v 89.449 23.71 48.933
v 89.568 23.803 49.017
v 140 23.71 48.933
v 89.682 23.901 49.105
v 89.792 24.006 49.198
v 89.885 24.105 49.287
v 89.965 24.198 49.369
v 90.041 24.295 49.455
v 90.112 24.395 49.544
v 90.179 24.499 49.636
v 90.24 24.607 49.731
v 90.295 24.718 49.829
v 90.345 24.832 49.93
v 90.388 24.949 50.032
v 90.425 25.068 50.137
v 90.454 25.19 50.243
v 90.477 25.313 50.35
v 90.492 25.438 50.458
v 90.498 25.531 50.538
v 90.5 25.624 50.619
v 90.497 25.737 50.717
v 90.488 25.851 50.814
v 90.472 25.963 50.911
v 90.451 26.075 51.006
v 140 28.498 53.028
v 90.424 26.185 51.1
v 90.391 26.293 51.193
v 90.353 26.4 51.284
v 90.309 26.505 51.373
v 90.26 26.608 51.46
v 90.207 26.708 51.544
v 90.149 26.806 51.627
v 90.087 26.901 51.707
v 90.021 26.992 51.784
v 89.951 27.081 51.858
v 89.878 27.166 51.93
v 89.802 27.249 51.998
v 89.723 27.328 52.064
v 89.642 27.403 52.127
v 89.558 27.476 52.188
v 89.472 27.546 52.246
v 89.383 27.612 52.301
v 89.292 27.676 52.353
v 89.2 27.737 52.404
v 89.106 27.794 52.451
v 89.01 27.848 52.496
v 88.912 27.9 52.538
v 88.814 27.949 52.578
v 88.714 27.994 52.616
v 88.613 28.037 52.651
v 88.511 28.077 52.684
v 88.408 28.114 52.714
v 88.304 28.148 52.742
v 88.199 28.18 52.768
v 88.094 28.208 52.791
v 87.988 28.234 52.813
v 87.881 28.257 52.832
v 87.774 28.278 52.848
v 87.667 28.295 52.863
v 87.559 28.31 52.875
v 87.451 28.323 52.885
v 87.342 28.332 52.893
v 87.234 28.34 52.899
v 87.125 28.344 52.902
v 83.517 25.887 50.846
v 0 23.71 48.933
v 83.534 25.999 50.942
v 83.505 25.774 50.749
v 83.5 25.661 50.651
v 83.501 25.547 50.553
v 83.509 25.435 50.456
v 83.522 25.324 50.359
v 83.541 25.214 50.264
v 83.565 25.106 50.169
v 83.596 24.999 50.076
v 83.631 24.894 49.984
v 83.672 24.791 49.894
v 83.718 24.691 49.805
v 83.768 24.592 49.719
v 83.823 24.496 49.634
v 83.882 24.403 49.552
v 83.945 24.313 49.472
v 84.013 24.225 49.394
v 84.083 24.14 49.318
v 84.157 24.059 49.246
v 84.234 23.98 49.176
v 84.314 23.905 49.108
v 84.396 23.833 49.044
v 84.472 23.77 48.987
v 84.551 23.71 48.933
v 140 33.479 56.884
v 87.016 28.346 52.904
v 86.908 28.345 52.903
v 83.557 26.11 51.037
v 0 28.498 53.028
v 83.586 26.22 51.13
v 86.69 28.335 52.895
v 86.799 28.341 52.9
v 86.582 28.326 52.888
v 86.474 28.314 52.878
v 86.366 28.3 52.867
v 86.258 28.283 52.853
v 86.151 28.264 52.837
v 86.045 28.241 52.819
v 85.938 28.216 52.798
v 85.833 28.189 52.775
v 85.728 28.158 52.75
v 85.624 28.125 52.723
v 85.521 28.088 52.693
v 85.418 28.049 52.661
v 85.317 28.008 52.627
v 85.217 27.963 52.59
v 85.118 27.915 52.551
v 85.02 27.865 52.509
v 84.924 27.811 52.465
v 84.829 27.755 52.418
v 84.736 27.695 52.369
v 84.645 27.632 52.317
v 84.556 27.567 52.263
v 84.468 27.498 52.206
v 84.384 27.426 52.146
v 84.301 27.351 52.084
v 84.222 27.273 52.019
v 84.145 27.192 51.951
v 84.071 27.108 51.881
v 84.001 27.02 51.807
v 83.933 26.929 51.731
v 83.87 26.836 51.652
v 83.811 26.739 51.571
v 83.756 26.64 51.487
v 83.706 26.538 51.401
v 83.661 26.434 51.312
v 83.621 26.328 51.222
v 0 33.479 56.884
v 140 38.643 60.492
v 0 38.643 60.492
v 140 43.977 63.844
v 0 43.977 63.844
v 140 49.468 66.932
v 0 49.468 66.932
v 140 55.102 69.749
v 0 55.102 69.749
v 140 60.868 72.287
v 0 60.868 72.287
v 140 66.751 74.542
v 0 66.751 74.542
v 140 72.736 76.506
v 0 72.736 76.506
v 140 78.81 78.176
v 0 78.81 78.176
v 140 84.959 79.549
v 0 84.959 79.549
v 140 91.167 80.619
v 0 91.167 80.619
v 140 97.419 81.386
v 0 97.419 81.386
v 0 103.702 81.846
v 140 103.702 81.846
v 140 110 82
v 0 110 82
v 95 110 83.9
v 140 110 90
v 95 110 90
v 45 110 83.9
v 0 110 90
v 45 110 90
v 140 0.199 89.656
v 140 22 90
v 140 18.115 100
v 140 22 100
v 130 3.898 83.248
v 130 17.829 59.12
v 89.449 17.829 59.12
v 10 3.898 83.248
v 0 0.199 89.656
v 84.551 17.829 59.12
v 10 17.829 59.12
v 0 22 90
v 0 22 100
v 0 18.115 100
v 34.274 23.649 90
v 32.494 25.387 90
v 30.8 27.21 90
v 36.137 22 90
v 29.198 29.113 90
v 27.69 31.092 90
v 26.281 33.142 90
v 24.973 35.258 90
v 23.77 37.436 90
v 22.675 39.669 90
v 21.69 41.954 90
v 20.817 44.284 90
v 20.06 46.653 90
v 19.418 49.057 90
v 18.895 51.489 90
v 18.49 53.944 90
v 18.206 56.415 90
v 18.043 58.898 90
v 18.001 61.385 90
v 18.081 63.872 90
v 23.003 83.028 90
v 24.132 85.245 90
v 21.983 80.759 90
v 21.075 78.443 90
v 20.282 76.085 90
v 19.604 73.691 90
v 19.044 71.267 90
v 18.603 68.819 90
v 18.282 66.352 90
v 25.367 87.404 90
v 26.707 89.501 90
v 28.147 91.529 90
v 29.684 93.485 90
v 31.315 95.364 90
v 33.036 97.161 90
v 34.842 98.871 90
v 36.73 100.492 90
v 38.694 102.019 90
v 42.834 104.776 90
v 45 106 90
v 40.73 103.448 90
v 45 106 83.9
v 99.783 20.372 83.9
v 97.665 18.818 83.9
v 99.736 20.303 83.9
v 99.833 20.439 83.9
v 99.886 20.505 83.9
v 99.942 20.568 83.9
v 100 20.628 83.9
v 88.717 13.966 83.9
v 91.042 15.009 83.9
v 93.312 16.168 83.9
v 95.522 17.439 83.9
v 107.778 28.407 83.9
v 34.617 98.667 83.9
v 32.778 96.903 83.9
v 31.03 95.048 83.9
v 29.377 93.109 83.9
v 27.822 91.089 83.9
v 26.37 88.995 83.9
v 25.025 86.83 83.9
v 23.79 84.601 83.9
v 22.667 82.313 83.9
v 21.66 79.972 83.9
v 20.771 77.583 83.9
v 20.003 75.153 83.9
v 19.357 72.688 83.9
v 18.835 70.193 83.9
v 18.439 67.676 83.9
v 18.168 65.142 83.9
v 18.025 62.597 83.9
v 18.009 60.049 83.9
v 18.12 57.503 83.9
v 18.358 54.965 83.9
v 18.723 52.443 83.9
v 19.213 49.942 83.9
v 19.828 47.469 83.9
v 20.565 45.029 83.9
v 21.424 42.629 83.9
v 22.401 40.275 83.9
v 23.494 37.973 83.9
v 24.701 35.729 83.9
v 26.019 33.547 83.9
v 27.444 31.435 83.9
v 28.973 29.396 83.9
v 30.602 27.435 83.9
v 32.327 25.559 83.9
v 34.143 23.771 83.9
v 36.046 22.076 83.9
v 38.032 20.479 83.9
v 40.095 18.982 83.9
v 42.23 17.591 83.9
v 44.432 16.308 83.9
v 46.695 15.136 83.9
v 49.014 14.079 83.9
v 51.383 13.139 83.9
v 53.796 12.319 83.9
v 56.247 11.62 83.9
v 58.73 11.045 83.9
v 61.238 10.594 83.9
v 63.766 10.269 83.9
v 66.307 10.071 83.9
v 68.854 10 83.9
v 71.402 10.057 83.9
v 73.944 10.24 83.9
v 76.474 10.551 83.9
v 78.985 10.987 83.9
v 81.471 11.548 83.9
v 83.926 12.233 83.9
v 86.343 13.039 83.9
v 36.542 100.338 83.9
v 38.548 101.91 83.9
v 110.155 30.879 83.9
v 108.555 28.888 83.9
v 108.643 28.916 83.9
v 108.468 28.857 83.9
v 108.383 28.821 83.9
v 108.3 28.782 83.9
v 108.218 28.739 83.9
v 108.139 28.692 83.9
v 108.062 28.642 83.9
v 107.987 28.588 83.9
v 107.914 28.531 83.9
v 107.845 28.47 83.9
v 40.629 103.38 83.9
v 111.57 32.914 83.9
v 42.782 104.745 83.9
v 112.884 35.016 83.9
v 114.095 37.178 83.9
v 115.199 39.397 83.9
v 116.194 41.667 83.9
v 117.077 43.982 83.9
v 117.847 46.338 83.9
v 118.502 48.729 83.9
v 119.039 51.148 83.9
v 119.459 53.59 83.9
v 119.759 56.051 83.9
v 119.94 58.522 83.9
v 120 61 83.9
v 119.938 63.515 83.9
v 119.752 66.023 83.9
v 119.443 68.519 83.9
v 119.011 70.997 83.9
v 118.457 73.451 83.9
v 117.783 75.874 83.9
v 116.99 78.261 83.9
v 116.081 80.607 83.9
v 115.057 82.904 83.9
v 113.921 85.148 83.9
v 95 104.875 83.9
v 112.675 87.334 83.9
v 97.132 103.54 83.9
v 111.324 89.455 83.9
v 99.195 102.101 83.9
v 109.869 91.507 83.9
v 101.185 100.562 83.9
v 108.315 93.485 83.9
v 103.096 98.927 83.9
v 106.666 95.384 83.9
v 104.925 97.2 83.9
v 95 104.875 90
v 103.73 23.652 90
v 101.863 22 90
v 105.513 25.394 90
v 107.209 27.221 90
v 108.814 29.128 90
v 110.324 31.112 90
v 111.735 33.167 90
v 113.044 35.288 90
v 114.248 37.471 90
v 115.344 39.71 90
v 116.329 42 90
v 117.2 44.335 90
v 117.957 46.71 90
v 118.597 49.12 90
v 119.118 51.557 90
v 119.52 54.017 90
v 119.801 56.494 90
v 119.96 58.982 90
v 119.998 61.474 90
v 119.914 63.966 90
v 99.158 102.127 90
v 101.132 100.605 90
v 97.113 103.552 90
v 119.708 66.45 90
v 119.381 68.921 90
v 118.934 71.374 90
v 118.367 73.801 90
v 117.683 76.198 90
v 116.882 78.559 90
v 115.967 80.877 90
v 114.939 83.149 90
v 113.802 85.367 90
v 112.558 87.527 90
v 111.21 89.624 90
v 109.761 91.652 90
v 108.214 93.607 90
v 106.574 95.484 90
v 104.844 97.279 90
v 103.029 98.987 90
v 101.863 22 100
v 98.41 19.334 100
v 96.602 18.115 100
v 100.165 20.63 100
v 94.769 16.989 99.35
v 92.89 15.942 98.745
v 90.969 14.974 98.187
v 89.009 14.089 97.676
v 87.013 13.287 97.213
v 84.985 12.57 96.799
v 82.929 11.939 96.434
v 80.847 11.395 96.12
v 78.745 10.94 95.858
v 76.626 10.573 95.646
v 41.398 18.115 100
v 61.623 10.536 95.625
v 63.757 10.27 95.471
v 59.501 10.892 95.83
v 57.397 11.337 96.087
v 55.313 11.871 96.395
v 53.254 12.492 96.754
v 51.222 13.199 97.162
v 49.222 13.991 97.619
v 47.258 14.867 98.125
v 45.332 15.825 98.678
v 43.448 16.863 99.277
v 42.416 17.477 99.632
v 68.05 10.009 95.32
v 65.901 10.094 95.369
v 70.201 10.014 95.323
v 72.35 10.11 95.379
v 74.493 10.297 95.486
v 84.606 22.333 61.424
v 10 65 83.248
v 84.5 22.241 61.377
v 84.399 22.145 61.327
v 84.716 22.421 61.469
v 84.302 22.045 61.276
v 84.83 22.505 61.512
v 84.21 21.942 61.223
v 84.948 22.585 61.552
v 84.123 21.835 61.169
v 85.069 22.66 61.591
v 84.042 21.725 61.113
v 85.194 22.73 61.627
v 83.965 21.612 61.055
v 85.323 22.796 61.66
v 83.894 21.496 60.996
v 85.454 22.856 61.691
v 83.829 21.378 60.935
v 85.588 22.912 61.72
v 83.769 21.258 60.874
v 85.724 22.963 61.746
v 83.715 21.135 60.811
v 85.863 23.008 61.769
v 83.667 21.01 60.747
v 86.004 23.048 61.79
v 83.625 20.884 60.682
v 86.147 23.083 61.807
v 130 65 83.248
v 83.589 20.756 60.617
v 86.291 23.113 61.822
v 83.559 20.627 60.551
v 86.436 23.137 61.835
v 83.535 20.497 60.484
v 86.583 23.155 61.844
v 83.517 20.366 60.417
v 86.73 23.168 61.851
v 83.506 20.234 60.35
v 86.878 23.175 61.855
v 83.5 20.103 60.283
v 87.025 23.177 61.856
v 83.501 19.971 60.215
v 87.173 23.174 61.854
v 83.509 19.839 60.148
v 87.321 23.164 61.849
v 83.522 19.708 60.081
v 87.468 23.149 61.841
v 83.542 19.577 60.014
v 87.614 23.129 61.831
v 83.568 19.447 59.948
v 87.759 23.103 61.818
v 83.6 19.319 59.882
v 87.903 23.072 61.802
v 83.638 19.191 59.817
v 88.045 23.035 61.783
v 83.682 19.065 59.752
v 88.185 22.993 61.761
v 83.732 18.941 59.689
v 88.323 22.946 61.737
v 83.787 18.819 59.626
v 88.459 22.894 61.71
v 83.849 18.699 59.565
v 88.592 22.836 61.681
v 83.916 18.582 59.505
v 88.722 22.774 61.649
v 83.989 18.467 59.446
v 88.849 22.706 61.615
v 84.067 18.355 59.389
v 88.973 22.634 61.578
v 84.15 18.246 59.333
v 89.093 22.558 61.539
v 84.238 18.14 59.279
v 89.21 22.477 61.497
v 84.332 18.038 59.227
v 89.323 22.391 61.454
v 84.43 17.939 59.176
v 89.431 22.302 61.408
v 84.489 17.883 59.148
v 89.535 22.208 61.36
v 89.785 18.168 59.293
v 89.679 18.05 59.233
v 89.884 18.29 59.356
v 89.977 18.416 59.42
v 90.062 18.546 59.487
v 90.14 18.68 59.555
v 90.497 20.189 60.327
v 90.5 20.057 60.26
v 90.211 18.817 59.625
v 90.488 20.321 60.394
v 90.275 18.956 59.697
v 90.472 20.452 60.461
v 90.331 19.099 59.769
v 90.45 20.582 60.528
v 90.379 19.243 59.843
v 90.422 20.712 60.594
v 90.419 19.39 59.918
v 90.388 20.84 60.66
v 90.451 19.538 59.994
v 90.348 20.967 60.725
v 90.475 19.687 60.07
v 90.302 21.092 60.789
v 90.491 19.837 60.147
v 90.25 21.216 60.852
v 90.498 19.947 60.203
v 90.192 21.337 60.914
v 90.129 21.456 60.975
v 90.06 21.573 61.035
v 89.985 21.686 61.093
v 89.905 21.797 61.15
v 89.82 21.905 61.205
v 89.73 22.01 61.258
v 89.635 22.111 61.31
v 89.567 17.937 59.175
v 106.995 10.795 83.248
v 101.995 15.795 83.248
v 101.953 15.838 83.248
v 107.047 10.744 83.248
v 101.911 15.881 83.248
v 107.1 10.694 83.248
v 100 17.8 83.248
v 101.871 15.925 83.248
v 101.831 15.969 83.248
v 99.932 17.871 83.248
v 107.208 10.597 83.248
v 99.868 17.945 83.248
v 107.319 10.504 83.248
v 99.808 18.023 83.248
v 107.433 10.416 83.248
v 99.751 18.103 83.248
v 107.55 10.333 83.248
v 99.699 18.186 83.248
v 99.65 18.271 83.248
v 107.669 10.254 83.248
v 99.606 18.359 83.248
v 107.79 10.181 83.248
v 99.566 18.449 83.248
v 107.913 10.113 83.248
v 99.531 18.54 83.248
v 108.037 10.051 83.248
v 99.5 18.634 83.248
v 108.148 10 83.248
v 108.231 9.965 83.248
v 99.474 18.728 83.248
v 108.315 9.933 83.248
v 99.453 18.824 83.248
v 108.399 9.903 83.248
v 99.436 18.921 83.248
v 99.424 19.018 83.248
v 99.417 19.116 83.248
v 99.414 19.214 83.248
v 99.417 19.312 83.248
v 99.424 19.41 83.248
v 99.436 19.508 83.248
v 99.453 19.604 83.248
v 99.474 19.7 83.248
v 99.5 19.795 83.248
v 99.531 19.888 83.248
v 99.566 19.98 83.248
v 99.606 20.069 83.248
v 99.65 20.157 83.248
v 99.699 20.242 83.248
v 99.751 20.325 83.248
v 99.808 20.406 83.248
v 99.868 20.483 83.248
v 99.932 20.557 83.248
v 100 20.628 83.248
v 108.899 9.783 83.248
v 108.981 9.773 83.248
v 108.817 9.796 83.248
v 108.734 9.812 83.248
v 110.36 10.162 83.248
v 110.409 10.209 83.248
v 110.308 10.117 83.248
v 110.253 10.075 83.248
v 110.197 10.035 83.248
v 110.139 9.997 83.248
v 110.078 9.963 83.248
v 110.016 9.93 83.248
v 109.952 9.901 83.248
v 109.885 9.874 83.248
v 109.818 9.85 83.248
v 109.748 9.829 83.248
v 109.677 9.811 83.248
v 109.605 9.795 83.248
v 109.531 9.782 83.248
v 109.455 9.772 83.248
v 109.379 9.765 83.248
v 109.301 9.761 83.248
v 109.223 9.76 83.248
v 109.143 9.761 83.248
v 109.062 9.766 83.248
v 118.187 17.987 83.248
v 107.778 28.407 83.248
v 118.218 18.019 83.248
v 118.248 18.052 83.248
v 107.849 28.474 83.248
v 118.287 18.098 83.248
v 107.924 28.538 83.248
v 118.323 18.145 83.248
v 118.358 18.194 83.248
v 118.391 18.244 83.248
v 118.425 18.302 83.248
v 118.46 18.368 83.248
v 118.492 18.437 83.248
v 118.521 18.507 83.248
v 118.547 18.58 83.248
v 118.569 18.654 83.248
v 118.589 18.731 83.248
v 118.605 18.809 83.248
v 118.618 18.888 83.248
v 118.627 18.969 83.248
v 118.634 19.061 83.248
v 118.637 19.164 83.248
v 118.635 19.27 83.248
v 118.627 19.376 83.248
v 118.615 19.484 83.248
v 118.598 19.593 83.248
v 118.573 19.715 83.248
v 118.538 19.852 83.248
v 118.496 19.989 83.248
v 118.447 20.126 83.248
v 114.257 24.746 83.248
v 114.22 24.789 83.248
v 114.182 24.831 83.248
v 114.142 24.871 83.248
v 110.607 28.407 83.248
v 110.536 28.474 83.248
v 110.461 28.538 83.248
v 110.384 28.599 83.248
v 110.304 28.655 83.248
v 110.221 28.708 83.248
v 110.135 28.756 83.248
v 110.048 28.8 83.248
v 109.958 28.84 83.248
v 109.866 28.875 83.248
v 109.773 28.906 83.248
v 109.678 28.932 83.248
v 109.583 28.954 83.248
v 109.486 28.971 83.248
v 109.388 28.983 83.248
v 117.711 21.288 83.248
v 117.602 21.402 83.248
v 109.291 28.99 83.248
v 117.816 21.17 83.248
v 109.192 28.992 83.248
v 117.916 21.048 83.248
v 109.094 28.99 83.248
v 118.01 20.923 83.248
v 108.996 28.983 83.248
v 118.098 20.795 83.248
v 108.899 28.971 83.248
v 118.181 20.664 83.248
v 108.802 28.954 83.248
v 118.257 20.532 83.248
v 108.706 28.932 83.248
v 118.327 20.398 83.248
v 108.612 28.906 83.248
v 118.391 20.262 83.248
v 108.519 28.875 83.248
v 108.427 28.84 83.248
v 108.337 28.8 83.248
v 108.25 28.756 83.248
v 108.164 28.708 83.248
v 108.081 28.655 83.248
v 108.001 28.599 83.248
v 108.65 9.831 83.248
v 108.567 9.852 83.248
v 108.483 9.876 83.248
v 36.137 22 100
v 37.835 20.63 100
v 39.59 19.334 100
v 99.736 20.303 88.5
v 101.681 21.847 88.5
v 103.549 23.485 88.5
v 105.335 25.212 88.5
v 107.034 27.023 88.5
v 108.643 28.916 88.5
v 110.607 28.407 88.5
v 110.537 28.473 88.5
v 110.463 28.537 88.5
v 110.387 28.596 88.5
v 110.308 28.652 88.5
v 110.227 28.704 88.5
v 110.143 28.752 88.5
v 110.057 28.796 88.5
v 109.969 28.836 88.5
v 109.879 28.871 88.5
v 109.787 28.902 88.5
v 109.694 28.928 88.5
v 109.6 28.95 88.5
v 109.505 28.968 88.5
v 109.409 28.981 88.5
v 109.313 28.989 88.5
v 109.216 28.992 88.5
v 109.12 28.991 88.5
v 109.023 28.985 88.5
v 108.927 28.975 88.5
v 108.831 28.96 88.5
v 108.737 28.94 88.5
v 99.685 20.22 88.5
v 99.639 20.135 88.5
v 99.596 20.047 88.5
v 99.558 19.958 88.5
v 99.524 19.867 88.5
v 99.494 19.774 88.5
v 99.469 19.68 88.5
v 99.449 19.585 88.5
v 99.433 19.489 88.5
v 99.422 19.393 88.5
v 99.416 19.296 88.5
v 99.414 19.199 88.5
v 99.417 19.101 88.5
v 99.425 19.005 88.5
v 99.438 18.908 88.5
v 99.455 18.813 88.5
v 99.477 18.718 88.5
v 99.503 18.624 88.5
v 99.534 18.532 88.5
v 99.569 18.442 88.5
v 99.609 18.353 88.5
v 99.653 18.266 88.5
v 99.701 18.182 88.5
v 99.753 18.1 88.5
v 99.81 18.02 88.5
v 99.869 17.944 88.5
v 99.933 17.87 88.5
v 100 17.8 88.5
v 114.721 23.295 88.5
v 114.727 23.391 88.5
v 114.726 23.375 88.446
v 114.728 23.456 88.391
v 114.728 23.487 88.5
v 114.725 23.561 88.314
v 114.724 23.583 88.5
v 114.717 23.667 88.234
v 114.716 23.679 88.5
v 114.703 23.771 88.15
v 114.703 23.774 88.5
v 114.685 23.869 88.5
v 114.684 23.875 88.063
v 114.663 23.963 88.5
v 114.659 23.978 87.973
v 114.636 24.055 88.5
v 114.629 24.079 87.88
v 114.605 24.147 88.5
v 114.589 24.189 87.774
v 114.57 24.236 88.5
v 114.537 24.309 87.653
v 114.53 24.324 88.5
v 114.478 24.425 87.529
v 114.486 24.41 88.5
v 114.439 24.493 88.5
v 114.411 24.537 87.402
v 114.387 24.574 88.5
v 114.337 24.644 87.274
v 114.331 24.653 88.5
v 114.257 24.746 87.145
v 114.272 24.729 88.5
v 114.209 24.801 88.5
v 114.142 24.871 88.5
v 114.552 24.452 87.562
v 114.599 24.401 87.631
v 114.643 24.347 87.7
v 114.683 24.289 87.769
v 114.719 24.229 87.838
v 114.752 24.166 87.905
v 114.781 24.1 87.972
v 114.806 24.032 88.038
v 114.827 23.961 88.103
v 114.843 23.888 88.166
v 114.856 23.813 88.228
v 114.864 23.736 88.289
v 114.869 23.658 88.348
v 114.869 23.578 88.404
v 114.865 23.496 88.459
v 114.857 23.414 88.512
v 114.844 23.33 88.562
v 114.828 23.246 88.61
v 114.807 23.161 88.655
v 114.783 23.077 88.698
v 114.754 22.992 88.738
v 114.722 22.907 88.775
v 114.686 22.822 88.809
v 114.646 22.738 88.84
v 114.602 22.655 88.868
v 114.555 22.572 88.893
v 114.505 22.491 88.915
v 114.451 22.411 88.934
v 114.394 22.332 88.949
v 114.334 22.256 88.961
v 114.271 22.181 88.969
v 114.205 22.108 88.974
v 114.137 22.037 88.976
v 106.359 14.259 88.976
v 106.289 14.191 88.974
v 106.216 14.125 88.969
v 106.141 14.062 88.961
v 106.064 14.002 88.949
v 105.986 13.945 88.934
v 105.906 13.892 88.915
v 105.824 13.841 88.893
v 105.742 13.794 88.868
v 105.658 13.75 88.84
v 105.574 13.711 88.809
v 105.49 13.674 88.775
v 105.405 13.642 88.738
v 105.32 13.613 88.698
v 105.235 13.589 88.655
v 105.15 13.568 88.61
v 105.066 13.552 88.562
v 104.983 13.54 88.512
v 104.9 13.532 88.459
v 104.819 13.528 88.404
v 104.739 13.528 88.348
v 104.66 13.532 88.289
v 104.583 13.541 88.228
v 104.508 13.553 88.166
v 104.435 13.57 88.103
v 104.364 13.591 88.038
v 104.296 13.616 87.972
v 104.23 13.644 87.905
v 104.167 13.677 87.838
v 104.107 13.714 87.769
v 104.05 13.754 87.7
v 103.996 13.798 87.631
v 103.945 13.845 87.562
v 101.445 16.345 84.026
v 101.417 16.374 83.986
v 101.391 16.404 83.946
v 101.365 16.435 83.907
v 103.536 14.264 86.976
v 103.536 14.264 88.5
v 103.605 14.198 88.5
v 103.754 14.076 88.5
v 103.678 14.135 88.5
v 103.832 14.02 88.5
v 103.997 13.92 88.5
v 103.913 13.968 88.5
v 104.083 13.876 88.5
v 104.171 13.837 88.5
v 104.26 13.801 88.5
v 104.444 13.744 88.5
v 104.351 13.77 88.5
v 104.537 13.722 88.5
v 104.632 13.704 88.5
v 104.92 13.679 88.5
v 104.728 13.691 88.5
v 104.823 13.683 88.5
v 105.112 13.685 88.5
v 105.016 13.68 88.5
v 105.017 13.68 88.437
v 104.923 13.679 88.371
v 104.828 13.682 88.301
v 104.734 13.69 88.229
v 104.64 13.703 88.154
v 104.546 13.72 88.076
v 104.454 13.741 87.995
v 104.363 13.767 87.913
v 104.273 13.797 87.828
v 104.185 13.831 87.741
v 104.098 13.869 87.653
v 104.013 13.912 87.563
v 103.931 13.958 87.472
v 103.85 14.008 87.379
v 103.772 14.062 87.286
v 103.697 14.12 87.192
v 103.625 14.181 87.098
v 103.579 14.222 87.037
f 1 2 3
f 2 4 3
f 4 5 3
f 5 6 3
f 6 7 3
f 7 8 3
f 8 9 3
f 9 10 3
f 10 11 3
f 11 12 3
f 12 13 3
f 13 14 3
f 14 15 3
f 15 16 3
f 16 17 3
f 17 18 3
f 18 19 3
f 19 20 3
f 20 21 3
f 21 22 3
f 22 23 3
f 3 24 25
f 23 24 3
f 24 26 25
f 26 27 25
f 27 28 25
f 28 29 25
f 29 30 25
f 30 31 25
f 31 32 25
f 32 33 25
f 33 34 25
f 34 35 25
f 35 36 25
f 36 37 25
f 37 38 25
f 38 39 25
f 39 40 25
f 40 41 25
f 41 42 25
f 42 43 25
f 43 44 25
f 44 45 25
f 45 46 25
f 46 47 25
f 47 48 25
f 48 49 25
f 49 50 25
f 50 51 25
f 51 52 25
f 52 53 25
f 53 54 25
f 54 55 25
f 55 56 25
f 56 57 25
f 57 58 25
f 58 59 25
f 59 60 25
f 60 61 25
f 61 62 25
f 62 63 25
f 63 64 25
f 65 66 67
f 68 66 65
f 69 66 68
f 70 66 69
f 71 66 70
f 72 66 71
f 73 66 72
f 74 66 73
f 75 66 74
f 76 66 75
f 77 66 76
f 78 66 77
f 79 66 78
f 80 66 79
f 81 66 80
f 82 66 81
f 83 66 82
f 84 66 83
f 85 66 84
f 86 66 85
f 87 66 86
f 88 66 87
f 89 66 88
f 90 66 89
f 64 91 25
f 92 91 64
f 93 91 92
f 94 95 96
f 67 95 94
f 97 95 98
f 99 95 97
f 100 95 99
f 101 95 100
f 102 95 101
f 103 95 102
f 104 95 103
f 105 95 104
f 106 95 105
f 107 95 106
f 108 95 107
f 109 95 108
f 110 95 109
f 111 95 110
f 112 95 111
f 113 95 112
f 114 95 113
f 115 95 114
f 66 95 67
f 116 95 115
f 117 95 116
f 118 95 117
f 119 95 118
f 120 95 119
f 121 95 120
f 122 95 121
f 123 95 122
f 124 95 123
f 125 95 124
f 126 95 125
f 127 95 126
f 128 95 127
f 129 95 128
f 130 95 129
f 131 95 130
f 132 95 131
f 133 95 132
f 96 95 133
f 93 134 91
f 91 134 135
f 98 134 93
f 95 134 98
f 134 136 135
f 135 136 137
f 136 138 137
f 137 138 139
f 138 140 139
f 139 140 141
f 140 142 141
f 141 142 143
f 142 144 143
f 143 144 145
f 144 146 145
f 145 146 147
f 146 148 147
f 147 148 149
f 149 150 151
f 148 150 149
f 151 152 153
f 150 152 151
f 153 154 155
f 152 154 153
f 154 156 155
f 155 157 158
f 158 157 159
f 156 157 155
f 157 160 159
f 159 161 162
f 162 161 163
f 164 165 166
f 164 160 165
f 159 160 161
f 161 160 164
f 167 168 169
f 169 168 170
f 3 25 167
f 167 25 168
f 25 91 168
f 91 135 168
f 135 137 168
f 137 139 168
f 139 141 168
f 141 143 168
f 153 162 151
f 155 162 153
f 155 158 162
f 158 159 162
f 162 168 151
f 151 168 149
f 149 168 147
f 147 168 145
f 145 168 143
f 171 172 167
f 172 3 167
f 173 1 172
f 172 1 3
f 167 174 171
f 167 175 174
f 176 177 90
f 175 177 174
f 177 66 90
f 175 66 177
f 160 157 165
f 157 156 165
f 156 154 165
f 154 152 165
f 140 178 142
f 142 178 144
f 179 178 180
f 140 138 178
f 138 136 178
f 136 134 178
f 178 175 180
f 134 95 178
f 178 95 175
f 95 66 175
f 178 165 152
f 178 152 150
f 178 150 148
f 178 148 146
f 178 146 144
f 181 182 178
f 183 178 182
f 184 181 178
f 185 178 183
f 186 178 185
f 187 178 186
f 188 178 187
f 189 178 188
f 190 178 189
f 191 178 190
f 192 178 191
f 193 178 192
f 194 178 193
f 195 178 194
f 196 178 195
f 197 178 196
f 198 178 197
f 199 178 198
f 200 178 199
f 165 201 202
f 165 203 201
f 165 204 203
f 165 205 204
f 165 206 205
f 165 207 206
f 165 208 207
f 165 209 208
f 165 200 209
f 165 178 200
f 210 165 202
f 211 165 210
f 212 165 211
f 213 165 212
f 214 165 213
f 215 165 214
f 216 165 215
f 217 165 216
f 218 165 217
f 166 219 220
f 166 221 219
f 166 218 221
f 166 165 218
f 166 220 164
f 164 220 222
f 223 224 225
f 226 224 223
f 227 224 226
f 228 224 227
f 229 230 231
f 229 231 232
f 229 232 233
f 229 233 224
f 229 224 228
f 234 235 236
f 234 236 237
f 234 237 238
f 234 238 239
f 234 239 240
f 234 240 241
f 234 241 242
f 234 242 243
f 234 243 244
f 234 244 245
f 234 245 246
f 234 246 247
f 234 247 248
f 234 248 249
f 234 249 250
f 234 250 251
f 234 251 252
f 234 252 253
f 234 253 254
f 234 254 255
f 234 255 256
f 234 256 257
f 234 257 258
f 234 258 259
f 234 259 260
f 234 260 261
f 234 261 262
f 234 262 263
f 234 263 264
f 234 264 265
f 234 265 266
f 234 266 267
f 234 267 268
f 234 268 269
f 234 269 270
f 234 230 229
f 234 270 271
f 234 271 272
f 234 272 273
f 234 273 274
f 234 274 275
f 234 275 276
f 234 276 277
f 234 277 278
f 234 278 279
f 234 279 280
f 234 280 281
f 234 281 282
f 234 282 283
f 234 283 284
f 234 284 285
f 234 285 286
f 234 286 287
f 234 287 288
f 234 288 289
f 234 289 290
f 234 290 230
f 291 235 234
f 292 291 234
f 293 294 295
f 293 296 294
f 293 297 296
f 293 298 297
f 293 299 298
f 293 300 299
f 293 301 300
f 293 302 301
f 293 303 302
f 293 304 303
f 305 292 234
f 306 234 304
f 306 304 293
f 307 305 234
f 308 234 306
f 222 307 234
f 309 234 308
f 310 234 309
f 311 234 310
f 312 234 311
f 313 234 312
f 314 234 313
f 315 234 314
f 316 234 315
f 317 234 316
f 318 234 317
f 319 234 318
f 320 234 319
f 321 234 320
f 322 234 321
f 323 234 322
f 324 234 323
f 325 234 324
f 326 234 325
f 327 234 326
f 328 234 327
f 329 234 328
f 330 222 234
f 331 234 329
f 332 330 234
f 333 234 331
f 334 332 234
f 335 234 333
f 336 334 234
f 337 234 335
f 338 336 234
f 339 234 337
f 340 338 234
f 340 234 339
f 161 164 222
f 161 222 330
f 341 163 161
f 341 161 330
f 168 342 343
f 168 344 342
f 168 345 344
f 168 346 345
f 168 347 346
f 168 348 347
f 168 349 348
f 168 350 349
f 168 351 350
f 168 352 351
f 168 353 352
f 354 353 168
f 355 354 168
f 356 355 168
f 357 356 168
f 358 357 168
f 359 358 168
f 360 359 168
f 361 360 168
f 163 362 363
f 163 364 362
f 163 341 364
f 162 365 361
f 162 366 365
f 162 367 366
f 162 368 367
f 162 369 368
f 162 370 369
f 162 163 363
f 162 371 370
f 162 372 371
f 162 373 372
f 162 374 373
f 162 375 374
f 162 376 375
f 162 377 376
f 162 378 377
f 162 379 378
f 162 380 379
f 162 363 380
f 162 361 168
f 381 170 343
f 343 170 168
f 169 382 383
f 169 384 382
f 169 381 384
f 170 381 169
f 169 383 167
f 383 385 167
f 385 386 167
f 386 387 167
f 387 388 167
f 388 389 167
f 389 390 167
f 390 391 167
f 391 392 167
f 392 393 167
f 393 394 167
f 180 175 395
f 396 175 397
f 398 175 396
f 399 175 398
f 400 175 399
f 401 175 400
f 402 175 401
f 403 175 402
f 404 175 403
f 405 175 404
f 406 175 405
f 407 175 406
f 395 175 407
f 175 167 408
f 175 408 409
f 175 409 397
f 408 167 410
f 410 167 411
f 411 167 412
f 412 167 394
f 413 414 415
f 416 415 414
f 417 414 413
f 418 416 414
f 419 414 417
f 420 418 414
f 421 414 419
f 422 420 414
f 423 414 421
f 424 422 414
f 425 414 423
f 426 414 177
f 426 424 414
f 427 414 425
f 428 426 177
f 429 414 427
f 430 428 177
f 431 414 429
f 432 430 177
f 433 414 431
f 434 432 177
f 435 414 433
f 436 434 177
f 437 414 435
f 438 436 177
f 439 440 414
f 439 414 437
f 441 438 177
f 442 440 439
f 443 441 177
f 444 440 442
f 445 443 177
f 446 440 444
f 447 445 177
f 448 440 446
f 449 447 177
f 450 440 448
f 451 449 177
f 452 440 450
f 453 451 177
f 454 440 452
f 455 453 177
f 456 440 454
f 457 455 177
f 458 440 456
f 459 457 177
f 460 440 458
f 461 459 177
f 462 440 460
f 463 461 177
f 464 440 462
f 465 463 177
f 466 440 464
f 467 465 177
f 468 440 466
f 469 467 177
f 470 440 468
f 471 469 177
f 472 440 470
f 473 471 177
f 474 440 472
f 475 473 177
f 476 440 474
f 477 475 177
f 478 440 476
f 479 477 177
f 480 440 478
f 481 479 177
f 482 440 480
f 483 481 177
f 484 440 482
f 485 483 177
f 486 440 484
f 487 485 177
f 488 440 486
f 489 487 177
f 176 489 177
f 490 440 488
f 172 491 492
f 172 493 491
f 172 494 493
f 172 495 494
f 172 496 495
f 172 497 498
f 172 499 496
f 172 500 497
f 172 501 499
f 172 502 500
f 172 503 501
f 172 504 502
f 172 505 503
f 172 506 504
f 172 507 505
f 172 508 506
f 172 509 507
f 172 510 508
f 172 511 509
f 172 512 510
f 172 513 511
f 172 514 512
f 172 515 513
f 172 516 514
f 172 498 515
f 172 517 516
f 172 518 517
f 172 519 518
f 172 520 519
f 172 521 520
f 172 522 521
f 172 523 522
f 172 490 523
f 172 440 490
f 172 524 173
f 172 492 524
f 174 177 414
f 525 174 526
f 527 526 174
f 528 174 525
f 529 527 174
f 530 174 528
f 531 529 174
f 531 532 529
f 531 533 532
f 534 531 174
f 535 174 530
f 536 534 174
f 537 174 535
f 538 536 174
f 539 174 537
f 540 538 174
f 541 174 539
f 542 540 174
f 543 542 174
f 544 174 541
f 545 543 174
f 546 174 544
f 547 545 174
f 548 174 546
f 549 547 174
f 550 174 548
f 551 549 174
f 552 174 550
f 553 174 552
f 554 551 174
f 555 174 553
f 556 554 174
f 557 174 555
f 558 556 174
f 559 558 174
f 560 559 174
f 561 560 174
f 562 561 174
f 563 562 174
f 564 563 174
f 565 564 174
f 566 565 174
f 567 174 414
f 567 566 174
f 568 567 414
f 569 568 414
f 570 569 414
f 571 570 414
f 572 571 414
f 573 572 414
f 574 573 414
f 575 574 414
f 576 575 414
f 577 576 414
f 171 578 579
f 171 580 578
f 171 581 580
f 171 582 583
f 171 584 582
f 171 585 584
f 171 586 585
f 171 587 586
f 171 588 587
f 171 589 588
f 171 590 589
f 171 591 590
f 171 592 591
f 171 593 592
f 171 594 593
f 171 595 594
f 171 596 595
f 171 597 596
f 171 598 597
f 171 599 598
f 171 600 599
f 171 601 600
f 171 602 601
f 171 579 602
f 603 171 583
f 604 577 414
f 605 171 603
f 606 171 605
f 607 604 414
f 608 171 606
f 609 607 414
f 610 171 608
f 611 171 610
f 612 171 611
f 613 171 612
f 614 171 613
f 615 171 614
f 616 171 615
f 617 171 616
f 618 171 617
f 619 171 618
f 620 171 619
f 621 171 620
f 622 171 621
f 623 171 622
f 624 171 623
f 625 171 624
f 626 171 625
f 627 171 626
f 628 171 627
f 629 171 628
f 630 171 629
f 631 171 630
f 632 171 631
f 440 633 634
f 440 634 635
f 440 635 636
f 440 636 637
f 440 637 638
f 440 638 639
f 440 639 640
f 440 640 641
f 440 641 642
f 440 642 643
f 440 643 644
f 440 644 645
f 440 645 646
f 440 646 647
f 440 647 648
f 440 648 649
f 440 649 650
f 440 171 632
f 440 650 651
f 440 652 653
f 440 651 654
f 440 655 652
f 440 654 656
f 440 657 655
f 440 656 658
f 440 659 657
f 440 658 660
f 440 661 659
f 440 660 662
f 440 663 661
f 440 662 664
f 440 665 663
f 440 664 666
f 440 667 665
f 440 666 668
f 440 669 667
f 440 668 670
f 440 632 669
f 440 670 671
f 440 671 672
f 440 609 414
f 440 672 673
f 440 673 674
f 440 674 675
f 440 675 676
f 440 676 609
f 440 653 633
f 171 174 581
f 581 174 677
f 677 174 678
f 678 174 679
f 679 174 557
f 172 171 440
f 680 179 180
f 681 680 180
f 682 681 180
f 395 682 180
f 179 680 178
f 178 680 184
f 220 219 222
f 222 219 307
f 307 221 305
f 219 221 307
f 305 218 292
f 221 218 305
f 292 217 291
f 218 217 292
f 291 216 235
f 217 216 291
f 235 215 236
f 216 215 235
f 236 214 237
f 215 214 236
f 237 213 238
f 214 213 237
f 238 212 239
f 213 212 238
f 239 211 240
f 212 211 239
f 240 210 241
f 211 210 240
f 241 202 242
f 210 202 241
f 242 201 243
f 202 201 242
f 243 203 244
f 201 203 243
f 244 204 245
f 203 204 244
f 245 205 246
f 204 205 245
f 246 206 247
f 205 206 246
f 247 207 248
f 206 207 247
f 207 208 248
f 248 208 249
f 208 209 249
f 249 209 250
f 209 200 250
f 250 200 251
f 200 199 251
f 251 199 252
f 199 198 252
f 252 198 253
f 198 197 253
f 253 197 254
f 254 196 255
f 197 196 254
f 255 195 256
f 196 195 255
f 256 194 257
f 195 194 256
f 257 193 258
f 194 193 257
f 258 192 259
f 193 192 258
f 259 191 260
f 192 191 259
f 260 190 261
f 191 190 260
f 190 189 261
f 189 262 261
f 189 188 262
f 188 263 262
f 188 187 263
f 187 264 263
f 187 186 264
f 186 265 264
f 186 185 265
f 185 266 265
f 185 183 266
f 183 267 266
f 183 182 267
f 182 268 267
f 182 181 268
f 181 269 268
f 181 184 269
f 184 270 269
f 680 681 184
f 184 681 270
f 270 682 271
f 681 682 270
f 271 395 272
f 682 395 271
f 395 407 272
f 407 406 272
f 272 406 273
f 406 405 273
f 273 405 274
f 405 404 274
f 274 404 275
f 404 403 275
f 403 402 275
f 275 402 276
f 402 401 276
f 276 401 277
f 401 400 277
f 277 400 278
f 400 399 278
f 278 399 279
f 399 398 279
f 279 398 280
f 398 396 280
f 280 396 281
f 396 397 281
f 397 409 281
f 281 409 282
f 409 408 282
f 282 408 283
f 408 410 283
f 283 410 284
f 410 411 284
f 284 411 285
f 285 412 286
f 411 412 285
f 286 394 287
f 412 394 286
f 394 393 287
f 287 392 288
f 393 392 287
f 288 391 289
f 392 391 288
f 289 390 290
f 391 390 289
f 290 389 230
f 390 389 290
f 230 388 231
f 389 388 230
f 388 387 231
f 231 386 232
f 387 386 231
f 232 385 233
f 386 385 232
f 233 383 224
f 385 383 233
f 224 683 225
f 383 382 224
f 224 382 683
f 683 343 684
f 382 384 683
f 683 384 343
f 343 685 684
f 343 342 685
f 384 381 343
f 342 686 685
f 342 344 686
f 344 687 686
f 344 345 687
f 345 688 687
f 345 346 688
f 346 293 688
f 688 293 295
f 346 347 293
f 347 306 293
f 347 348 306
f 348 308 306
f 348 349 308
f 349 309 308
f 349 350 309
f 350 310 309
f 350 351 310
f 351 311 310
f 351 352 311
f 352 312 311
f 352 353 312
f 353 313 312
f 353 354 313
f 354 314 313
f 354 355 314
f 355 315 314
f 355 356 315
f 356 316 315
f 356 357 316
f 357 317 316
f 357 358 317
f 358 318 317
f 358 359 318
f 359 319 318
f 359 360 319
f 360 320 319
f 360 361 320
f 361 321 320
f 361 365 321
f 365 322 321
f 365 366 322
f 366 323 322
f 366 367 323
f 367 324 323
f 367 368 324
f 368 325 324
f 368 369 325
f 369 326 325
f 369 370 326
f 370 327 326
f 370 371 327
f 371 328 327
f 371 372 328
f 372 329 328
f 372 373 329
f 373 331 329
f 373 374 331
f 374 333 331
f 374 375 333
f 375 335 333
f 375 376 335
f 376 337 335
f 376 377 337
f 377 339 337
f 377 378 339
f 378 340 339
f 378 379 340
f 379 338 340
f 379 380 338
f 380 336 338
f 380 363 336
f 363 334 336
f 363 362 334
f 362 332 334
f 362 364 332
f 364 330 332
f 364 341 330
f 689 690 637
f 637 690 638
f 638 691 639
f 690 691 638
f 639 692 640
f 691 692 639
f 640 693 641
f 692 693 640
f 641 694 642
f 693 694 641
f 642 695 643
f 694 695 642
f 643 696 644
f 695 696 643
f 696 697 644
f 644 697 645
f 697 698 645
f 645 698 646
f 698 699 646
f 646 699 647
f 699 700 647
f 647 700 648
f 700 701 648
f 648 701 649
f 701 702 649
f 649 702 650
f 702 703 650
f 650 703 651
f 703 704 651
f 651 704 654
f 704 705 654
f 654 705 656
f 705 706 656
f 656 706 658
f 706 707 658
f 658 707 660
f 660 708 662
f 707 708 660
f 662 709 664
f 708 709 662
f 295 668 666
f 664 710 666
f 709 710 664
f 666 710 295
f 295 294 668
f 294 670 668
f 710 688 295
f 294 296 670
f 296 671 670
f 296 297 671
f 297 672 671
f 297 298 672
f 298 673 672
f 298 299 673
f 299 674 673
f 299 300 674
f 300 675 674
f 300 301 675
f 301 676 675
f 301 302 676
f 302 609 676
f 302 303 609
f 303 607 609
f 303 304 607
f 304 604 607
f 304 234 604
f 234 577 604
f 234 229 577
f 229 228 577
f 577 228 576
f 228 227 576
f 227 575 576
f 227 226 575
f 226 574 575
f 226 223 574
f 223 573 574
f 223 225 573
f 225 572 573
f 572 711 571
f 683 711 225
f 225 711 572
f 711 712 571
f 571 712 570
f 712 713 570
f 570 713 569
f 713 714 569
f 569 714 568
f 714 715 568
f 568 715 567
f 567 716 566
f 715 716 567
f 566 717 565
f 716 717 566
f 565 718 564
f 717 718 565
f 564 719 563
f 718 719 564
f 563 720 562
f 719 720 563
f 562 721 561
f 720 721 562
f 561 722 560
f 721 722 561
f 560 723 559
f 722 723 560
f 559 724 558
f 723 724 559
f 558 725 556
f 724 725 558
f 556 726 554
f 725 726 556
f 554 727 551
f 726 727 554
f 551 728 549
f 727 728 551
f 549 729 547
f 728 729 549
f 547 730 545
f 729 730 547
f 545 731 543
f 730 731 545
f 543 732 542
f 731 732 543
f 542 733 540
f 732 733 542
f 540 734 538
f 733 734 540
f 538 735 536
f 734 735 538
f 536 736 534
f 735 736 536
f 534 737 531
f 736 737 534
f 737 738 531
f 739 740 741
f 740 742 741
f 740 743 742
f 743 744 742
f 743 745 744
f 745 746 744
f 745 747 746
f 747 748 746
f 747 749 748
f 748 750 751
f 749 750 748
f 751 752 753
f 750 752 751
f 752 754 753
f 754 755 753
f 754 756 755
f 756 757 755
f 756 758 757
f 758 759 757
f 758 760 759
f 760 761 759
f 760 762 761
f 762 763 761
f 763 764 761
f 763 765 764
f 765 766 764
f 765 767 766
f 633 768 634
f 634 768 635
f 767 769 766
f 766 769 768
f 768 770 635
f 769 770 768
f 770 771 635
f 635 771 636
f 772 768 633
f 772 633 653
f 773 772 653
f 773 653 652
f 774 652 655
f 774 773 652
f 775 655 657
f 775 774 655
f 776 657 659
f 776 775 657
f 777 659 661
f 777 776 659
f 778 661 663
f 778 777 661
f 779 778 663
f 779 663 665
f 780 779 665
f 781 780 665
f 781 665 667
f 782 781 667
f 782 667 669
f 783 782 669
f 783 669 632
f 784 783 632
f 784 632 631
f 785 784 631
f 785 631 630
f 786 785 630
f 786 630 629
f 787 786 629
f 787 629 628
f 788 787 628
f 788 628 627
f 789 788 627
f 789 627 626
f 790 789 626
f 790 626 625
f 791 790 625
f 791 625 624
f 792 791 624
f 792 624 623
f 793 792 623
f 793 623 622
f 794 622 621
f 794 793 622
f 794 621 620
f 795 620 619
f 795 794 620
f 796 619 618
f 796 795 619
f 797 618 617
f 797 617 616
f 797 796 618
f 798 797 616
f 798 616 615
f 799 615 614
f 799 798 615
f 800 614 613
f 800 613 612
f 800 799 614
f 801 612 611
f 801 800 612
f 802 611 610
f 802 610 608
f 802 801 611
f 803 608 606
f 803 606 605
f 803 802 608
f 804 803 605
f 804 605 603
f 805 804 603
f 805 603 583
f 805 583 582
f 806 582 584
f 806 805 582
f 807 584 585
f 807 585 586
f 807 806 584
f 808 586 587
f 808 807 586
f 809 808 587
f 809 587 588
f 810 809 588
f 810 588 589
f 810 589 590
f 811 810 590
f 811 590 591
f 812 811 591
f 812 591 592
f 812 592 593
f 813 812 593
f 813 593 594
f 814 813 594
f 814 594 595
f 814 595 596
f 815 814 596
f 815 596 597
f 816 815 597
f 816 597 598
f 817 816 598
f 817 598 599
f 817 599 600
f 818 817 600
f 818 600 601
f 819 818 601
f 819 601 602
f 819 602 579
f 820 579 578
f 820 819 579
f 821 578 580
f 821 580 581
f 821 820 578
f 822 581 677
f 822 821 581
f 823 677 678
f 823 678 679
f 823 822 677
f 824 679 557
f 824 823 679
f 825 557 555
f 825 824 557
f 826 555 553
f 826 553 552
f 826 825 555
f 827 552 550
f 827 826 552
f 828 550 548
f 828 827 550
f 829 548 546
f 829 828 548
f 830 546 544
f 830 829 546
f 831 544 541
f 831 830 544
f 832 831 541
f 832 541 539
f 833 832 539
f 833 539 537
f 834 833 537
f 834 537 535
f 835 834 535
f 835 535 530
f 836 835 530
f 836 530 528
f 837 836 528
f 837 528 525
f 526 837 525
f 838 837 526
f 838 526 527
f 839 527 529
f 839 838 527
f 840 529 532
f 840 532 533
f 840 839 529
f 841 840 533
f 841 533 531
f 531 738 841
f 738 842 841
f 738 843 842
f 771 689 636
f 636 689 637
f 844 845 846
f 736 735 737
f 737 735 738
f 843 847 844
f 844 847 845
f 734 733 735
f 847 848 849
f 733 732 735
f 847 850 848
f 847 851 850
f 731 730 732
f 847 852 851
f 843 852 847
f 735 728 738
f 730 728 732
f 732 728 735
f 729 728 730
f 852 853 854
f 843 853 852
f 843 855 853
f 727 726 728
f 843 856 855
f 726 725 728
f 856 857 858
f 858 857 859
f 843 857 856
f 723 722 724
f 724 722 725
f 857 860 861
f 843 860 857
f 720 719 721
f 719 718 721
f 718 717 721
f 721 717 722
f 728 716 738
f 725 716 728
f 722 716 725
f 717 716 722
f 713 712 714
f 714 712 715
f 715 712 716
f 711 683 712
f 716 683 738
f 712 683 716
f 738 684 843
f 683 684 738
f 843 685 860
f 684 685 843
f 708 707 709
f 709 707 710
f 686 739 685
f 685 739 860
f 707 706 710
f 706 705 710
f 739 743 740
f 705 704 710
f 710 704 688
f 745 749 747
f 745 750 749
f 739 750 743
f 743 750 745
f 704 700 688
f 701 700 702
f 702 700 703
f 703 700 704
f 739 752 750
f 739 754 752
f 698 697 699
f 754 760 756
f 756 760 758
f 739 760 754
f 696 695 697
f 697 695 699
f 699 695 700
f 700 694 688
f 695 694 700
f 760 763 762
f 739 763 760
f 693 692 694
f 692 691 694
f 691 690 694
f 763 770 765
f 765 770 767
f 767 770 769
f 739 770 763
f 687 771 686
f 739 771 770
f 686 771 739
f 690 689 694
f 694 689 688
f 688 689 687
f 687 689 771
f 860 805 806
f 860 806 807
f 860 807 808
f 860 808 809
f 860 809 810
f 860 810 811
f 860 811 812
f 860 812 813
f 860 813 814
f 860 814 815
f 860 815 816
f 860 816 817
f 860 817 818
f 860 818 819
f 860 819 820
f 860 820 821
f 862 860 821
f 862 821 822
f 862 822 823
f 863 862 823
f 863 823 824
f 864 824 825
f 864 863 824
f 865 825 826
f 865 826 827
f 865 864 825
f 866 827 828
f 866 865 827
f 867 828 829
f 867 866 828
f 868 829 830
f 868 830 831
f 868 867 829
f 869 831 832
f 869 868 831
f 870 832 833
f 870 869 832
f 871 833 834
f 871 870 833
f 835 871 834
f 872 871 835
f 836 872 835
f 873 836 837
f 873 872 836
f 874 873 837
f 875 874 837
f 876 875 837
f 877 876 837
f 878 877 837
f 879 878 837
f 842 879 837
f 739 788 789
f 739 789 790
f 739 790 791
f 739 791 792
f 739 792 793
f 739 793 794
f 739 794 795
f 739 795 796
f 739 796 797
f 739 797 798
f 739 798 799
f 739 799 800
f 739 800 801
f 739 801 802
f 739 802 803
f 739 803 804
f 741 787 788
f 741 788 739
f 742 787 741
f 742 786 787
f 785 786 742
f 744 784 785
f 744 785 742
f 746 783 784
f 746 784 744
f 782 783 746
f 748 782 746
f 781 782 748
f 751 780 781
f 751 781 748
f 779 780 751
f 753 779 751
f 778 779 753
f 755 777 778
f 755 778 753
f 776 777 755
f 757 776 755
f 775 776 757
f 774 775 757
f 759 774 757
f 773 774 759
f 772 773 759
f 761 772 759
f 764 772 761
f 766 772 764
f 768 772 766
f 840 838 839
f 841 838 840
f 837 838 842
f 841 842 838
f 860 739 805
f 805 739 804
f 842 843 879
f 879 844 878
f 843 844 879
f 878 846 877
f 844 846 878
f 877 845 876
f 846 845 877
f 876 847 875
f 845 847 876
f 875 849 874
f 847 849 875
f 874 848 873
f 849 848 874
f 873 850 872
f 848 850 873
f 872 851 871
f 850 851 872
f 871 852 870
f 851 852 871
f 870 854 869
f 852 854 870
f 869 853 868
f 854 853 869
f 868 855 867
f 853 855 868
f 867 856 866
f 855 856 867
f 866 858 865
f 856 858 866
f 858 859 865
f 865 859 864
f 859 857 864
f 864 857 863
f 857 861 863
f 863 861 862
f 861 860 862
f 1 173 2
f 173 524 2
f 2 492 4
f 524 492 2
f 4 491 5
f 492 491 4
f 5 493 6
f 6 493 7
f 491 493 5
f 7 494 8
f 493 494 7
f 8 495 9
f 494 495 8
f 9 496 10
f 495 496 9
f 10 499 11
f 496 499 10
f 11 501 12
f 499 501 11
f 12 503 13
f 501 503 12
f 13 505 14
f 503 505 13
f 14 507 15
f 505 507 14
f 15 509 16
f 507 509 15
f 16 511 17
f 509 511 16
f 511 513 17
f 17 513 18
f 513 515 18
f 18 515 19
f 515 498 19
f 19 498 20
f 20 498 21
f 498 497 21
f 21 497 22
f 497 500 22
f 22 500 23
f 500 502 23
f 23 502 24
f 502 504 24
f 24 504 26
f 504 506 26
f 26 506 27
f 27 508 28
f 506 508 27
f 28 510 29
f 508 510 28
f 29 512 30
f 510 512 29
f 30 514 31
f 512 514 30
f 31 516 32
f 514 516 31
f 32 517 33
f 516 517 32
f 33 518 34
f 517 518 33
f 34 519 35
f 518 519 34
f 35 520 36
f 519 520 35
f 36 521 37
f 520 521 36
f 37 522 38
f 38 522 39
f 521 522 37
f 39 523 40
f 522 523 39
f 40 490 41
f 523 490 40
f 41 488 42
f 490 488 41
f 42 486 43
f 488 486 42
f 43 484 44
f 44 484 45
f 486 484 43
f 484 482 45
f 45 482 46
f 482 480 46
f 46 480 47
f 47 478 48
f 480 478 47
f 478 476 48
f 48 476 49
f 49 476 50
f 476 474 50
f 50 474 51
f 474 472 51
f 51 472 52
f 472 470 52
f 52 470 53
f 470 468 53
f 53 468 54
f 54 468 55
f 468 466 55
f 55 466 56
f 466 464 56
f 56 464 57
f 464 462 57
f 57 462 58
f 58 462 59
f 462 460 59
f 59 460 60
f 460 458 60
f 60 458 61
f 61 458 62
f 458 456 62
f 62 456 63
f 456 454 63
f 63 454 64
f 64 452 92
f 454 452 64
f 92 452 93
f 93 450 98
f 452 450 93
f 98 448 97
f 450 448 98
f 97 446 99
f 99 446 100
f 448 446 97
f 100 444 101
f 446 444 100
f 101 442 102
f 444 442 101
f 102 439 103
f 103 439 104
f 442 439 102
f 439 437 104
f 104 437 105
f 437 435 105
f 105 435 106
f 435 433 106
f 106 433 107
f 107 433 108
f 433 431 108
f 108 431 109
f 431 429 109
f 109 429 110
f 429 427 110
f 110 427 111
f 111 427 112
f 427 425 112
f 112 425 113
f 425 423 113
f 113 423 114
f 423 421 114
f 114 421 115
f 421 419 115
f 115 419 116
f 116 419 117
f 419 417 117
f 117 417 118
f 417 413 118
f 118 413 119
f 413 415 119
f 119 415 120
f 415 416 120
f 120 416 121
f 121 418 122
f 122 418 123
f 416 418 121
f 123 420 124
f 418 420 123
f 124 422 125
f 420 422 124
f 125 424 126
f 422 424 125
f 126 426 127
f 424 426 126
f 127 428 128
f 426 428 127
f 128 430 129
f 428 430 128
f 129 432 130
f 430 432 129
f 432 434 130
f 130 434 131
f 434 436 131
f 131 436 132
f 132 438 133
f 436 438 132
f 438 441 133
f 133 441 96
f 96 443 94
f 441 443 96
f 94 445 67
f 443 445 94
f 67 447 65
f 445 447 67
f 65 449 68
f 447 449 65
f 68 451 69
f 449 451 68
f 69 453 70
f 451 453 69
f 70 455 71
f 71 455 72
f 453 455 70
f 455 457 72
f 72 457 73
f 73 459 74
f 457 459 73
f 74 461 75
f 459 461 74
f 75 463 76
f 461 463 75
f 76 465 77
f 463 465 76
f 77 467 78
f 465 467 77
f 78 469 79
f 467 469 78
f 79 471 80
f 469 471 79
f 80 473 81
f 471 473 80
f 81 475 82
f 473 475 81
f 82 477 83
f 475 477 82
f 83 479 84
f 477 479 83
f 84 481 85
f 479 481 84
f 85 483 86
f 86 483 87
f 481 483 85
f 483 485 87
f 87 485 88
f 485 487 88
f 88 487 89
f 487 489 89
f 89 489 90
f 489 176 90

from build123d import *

# Parameters (mm, degrees)
SKETCH_W        = 140
SKETCH_H        = 110
PAD_DEPTH       = 100
SKETCH001_R     = 51
POCKET_DEPTH    = 16.1
SKETCH002_W     = 50
SKETCH002_H     = 7.148574
POCKET001_DEPTH = 16.1
SKETCH003_W     = 140
SKETCH003_H     = 90
POCKET002_DEPTH = 10
POCKET004_DEPTH = 140.001
POCKET005_DEPTH = 140
SKETCH007_R     = 129.123984
POCKET006_DEPTH = 140.001
POCKET007_DEPTH = 140.001
POCKET008_START = -1.5
POCKET008_DEPTH = 5.6
POCKET010_START = -10
POCKET010_DEPTH = 120
POCKET011_DEPTH = 52.16617
POCKET012_START = -20
SKETCH012_R     = 3.5
POCKET012_DEPTH = 30


with BuildPart() as part:
    # Sketch → Pad (new body)
    with BuildSketch(Plane.XY):
        with Locations((70, 55)):
            Rectangle(SKETCH_W, SKETCH_H)
    extrude(amount=PAD_DEPTH)

    # Sketch001 (on Face6 of Pad) → Pocket (cut)
    with BuildSketch(Plane.XY.offset(100)):
        with Locations((69, 61)):
            Circle(SKETCH001_R)
    extrude(amount=-POCKET_DEPTH, mode=Mode.SUBTRACT)

    # Sketch002 (on Face5 of Pocket) → Pocket001 (cut)
    with BuildSketch(Plane.XY.offset(100)):
        with Locations((70, 106.425713)):
            Rectangle(SKETCH002_W, SKETCH002_H)
    extrude(amount=-POCKET001_DEPTH, mode=Mode.SUBTRACT)

    # Sketch003 (on Face5 of Pocket001) → Pocket002 (cut)
    with BuildSketch(Plane.XY.offset(100)):
        with Locations((70, 67)):
            Rectangle(SKETCH003_W, SKETCH003_H)
    extrude(amount=-POCKET002_DEPTH, mode=Mode.SUBTRACT)

    # Sketch005 (on Face2 of Pocket002) → Pocket004 (cut, through all)
    with BuildSketch(Plane(origin=(0, 0, 0), x_dir=(0, -1, 0), z_dir=(-1, 0, 0))):
        Polygon((-18.980759, 100.500006), (7, 85.5), (7, 100.500006), align=None)
    extrude(amount=-POCKET004_DEPTH, mode=Mode.SUBTRACT)

    # Sketch006 (on Face5 of Pocket004) → Pocket005 (cut)
    with BuildSketch(Plane(origin=(0, 0, 0), x_dir=(0, -1, 0), z_dir=(-1, 0, 0))):
        Polygon((-110, 82), (0, 18.491437), (0, 0), (-110, 0), align=None)
    extrude(amount=-POCKET005_DEPTH, mode=Mode.SUBTRACT)

    # Sketch007 (on Face5 of Pocket005) → Pocket006 (cut, through all)
    with BuildSketch(Plane(origin=(0, 0, 0), x_dir=(0, -1, 0), z_dir=(-1, 0, 0))):
        with Locations((-110, -47.123984)):
            Circle(SKETCH007_R)
    extrude(amount=-POCKET006_DEPTH, mode=Mode.SUBTRACT)

    # Sketch008 (on Face5 of Pocket006) → Pocket007 (cut, through all)
    with BuildSketch(Plane(origin=(0, 0, 0), x_dir=(0, -1, 0), z_dir=(-1, 0, 0))):
        Polygon((0, 0), (0, 90), (-29.999995, 38.038473), align=None)
    extrude(amount=-POCKET007_DEPTH, mode=Mode.SUBTRACT)

    # Sketch009 (on Face10 of Pocket007) → Pocket008 (cut)
    with BuildSketch(Plane.XY.offset(90).offset(POCKET008_START)):
        with BuildLine():
            Line((106.36396, 14.264465), (114.142136, 22.042638))
            ThreePointArc((114.142136, 22.042638), (114.727923, 23.456852), (114.142137, 24.871066))
            Line((114.142137, 24.871066), (110.606603, 28.4066))
            ThreePointArc((110.606603, 28.4066), (109.19239, 28.992387), (107.778176, 28.4066))
            Line((107.778176, 28.4066), (100, 20.628427))
            ThreePointArc((100, 20.628427), (99.414214, 19.214214), (100, 17.8))
            Line((100, 17.8), (103.535533, 14.264466))
            ThreePointArc((103.535533, 14.264466), (104.949747, 13.678679), (106.36396, 14.264465))
        make_face()
    extrude(amount=-POCKET008_DEPTH, mode=Mode.SUBTRACT)

    # Sketch010 → Pocket010 (cut)
    with BuildSketch(Plane.YZ.offset(140).offset(POCKET010_START)):
        Polygon((0, 83.24846), (65, 83.24846), (0, 50), align=None)
    extrude(amount=-POCKET010_DEPTH, mode=Mode.SUBTRACT)

    # Sketch011 (on DatumPlane) → Pocket011 (cut, through all)
    with BuildSketch(Plane(origin=(42, -42, 83.24846), x_dir=(0.5, -0.5, 0.707107), z_dir=(0.5, -0.5, -0.707107))):
        with BuildLine():
            Line((8.1, -96.29), (8.1, -85.29))
            ThreePointArc((8.1, -85.29), (7.514214, -83.875786), (6.1, -83.29))
            Line((6.1, -83.29), (1.1, -83.29))
            ThreePointArc((1.1, -83.29), (-0.314214, -83.875786), (-0.9, -85.29))
            Line((-0.9, -85.29), (-0.9, -96.29))
            ThreePointArc((-0.9, -96.29), (-0.314214, -97.704214), (1.1, -98.29))
            Line((1.1, -98.29), (6.1, -98.29))
            ThreePointArc((6.1, -98.29), (7.514214, -97.704214), (8.1, -96.29))
        make_face()
    extrude(amount=POCKET011_DEPTH, mode=Mode.SUBTRACT)

    # Sketch012 (on Face13 of Pocket011) → Pocket012 (cut)
    with BuildSketch(Plane(origin=(0, -38.772597, 67.156073), x_dir=(1, 0, 0), z_dir=(0, -0.5, 0.866025)).offset(POCKET012_START)):
        with Locations((87, 47.5)):
            Circle(SKETCH012_R)
    extrude(amount=-POCKET012_DEPTH, mode=Mode.SUBTRACT)


solid = part.part
